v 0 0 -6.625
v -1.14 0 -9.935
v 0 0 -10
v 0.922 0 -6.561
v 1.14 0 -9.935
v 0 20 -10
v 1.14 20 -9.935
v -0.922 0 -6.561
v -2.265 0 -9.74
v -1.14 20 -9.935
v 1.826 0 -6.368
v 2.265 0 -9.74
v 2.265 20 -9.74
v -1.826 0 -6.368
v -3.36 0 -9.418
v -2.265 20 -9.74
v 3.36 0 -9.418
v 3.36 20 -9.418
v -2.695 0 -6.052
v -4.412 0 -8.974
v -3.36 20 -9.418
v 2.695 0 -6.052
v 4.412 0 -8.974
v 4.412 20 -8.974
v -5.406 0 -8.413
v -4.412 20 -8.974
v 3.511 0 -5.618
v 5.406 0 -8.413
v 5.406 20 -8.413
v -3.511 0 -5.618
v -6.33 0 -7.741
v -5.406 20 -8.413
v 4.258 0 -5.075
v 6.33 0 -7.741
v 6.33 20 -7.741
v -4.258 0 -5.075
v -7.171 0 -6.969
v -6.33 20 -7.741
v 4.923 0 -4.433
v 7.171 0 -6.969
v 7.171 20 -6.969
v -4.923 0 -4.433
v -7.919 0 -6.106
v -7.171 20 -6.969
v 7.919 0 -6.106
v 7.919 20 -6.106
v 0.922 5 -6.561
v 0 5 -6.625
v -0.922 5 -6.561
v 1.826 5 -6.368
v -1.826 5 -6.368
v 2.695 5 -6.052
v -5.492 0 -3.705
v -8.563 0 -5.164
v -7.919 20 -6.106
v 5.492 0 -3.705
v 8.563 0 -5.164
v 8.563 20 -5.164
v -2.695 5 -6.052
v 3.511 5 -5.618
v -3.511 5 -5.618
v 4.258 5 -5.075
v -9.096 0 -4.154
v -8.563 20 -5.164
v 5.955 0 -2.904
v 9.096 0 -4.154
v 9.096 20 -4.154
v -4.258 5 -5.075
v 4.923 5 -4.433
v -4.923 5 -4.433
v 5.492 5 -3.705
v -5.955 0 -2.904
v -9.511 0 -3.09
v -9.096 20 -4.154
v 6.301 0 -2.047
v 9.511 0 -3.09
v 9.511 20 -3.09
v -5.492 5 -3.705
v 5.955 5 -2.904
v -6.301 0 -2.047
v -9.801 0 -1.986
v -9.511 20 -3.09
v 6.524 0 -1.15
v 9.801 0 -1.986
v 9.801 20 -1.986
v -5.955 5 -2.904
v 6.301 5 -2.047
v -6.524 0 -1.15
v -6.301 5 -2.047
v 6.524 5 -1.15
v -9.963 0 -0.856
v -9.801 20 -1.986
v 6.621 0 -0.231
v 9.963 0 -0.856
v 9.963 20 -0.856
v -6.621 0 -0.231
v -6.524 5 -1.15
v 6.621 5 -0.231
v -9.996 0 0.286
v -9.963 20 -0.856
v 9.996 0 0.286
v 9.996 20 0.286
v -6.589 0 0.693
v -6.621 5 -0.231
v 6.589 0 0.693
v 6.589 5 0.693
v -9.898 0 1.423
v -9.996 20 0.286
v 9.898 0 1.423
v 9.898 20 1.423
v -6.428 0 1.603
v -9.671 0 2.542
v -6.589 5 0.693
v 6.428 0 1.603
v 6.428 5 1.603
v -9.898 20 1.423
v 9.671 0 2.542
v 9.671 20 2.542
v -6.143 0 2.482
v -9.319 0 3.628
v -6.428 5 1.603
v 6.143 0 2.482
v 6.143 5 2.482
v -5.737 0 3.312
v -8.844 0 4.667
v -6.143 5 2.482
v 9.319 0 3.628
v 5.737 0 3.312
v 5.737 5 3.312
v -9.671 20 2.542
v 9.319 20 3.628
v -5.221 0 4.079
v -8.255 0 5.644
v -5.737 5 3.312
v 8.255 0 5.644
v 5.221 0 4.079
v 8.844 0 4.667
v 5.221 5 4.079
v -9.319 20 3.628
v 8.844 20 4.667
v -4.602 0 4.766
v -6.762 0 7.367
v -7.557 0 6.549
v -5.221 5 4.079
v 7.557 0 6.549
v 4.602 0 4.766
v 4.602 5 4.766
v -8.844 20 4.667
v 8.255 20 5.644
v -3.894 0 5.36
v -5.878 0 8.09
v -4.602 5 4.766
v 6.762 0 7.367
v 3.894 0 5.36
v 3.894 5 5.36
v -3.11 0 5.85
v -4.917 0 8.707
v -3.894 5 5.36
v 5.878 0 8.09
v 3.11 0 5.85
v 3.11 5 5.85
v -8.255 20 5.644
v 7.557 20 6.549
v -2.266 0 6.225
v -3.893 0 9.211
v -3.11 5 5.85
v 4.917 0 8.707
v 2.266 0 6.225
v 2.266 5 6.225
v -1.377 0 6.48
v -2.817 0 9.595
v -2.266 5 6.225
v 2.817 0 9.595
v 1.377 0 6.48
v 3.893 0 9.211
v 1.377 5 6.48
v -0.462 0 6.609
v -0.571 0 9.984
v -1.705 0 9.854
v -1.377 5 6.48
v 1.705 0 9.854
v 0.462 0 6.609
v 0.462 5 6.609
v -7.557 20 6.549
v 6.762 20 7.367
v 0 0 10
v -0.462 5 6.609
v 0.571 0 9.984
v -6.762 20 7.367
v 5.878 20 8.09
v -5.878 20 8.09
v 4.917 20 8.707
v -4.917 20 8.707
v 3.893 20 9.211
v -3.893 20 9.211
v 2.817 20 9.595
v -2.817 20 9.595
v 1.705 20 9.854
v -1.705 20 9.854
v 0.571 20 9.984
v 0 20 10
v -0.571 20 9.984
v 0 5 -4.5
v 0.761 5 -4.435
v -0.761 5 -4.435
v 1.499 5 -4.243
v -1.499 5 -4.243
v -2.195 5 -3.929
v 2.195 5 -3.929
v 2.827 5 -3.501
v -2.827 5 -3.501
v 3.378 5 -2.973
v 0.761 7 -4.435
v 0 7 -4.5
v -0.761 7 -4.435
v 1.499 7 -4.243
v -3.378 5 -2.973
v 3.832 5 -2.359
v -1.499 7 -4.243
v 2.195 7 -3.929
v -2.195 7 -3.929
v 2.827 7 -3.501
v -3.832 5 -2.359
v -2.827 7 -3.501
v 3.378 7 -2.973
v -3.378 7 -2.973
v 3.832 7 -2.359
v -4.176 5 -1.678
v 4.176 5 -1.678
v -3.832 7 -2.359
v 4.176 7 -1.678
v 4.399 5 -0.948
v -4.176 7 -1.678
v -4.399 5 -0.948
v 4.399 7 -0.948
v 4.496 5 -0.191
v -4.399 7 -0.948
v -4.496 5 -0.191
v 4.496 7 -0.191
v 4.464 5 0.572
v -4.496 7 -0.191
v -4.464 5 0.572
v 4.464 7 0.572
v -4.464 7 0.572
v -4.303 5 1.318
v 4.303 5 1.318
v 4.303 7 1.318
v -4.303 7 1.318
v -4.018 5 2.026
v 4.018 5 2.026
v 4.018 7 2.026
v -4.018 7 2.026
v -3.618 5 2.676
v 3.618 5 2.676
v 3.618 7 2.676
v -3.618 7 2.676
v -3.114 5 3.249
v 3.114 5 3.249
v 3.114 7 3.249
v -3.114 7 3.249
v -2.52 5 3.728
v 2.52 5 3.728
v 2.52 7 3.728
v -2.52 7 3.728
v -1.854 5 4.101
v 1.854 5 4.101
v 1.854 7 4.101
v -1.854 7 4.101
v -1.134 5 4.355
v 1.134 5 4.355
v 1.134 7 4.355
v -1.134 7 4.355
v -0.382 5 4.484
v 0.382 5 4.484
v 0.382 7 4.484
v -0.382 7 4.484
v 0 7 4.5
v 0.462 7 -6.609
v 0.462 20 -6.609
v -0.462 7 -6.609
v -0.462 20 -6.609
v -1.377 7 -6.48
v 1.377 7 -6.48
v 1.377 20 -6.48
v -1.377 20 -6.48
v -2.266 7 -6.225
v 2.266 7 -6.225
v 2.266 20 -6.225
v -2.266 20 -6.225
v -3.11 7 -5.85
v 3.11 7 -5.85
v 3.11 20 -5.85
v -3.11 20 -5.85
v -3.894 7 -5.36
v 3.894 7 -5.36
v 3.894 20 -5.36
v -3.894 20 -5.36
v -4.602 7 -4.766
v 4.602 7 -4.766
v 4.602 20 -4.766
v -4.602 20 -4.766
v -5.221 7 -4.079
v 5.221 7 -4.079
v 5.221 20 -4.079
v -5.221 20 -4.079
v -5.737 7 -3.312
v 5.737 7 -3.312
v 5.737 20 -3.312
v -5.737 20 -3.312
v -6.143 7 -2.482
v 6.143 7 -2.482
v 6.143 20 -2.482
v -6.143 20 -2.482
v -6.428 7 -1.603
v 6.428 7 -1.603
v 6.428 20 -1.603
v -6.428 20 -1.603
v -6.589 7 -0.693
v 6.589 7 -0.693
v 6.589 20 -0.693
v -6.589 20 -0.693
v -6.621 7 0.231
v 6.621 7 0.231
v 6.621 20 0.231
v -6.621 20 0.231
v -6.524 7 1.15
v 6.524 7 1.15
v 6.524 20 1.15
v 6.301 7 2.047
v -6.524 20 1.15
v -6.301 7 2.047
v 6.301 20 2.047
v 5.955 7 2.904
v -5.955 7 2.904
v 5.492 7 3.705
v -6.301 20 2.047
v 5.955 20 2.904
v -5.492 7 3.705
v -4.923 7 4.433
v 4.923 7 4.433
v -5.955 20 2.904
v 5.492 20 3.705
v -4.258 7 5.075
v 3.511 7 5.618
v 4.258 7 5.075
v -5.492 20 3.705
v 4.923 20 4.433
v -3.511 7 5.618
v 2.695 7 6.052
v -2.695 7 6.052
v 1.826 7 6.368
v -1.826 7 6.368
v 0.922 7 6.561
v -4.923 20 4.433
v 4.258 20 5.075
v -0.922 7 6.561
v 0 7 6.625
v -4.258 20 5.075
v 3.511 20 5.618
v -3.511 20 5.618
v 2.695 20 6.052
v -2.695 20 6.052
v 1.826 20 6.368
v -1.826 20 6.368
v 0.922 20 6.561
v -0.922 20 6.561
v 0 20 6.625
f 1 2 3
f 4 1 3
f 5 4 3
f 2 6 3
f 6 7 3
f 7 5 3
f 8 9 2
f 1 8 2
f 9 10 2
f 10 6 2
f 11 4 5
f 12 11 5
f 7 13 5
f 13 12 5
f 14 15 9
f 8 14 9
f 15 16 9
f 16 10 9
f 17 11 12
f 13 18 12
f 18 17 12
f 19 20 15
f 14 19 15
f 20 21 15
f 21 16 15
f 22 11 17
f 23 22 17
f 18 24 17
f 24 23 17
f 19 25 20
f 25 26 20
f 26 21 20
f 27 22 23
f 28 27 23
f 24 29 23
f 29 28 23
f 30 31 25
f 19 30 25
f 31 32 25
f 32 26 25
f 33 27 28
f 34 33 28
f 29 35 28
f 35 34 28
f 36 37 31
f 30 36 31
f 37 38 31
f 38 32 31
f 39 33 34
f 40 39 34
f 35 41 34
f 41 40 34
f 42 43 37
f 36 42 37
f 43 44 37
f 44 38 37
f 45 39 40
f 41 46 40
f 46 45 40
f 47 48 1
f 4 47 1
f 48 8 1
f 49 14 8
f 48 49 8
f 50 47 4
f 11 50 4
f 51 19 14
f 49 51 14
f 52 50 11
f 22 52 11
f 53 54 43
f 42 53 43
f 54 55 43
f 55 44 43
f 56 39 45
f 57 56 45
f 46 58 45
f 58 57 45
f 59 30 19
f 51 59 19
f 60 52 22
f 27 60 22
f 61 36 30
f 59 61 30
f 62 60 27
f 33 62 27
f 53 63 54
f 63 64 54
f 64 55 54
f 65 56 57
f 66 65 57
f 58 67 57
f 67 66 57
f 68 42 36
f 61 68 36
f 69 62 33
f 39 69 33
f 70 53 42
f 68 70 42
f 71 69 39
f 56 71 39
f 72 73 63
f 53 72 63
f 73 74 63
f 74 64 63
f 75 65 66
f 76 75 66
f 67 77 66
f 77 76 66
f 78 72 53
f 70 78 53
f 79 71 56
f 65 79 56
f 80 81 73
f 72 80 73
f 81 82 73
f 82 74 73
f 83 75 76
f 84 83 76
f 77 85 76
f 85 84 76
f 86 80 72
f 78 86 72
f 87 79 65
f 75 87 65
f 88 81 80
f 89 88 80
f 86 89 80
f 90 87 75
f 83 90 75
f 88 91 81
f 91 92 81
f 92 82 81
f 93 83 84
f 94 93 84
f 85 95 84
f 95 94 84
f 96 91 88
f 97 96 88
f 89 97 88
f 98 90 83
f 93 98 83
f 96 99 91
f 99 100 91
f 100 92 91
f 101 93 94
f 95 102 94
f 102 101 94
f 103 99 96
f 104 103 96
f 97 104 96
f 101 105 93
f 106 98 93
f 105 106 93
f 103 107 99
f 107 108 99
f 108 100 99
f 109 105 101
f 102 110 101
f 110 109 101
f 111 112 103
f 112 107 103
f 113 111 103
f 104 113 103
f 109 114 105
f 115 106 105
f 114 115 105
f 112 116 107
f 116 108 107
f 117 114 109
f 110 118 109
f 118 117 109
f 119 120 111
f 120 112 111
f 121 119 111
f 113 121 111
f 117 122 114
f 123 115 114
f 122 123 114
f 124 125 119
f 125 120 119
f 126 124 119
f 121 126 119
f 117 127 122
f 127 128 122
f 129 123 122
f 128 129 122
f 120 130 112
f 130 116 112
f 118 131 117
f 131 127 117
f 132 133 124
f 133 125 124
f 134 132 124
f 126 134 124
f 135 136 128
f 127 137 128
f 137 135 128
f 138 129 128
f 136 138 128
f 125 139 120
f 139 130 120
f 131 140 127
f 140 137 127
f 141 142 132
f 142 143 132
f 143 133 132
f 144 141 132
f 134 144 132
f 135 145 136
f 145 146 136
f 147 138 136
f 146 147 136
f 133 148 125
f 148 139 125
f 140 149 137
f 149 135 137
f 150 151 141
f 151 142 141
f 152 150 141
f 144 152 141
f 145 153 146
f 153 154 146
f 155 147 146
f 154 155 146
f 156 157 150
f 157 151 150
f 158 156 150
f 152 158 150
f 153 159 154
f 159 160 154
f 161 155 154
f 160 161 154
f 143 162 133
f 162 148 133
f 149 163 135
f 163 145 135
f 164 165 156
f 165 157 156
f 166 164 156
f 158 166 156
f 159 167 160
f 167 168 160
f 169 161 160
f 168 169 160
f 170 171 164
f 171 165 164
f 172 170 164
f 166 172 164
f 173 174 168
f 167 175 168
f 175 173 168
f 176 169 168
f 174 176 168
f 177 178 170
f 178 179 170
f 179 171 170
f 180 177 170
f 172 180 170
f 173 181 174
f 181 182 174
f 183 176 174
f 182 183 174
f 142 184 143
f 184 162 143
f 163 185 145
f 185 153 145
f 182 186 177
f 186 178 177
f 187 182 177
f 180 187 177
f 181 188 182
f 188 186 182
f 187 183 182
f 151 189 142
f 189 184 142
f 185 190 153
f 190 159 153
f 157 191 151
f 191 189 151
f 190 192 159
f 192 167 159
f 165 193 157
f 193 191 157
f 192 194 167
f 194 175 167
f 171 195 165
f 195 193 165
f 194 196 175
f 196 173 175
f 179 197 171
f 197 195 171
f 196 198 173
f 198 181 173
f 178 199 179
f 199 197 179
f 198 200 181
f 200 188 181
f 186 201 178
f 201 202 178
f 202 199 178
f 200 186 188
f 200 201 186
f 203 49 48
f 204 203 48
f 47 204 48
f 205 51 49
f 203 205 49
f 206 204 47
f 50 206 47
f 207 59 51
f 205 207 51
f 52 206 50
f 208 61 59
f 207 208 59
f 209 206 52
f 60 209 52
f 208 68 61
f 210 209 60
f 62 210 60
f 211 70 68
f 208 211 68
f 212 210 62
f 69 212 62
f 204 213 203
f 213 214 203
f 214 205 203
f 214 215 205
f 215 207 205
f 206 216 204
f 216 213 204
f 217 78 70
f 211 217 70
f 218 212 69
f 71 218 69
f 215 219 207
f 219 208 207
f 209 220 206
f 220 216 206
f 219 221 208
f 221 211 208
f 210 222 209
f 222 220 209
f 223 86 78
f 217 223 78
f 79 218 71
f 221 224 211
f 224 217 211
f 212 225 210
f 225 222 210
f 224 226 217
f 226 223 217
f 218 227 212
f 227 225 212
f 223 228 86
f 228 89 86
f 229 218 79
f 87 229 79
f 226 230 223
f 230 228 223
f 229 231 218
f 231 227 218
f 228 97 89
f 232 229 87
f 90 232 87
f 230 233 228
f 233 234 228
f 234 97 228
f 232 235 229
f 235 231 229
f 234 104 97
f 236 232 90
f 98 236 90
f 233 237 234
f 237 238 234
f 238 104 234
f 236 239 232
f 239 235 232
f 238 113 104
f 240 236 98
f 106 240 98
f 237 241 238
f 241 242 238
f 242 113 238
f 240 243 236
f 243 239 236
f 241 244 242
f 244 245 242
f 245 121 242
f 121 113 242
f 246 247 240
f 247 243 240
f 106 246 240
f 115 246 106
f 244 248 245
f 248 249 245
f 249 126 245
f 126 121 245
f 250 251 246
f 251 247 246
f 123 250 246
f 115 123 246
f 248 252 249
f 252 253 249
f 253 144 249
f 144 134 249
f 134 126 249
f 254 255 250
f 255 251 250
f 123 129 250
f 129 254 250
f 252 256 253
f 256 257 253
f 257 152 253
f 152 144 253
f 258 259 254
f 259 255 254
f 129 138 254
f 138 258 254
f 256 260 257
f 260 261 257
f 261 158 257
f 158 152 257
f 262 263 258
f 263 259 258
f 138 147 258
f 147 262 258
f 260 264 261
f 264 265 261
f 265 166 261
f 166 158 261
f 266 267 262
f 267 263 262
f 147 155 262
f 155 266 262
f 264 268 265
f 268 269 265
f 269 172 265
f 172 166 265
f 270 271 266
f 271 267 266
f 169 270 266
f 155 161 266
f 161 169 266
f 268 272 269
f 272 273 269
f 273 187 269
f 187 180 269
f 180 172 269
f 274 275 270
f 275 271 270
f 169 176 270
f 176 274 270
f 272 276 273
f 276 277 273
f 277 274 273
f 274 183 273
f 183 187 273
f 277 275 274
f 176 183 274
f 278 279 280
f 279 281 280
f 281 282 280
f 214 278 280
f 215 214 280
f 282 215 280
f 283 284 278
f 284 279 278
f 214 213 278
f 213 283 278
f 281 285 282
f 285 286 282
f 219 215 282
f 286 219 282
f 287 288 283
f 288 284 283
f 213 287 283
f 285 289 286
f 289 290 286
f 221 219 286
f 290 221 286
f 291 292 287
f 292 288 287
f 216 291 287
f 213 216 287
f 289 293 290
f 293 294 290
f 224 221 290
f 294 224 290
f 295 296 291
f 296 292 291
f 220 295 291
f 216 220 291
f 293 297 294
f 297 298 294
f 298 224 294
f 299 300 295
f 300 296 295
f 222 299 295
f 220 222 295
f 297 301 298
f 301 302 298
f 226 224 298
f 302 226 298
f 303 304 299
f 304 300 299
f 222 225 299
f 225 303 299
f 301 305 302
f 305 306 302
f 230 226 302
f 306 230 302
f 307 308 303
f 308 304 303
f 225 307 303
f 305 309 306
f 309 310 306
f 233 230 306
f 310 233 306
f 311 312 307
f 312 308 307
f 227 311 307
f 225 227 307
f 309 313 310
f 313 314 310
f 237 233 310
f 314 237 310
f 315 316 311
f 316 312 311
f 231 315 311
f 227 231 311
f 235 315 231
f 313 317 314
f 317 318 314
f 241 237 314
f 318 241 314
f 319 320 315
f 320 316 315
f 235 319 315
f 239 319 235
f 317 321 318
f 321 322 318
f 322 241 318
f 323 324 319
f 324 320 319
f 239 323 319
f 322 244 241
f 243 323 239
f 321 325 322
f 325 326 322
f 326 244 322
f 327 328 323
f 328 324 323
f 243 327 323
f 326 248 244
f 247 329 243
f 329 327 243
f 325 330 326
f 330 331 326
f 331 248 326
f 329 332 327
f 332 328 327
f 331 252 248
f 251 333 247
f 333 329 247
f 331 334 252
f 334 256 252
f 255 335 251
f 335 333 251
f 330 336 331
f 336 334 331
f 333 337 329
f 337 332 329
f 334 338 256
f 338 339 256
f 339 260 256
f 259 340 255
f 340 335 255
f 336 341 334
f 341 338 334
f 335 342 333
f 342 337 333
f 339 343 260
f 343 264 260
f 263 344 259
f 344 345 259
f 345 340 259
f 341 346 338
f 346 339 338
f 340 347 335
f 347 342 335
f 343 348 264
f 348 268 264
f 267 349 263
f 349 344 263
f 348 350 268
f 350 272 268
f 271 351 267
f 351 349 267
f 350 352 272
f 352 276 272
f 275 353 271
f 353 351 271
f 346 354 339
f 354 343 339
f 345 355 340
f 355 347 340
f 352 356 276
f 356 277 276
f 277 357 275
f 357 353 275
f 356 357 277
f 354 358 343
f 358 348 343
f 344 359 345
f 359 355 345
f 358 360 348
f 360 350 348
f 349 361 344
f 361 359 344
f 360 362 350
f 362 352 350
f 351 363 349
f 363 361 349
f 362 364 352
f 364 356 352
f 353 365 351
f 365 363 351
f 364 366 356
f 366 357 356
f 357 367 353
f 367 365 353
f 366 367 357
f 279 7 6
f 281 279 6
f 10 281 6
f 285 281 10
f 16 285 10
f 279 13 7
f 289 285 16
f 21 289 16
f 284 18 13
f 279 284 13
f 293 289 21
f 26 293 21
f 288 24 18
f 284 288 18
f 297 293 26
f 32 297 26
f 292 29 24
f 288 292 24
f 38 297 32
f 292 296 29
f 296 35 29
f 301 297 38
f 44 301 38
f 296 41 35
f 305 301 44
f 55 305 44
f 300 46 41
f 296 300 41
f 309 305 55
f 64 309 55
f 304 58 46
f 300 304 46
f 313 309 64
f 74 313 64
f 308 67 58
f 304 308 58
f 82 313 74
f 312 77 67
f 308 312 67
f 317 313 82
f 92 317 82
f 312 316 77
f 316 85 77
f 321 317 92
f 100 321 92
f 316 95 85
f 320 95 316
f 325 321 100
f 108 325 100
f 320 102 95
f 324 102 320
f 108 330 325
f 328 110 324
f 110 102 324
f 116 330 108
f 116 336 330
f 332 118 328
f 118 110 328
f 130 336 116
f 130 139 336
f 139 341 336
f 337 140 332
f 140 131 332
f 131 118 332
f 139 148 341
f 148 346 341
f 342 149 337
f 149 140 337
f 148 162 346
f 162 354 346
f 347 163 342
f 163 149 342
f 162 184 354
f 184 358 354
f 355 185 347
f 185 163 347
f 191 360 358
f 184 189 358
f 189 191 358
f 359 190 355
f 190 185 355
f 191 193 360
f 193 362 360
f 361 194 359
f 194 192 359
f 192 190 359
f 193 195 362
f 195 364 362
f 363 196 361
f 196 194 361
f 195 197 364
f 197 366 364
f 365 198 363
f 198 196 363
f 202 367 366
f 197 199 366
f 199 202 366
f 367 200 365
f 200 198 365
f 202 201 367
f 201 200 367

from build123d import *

# Parameters (mm, degrees)
SKETCH1_R           = 10
SKETCH1_R_2         = 4.5
BOSS_EXTRUDE1_DEPTH = 20
SKETCH2_R           = 6.625
CUT_EXTRUDE1_DEPTH  = 13
SKETCH3_R           = 6.625
CUT_EXTRUDE2_DEPTH  = 5


with BuildPart() as part:
    # Sketch1 → Boss-Extrude1 (new body)
    with BuildSketch(Plane(origin=(0, 0, 0), x_dir=(1, 0, 0), z_dir=(0, 1, 0))):
        Circle(SKETCH1_R)
        Circle(SKETCH1_R_2, mode=Mode.SUBTRACT)
    extrude(amount=BOSS_EXTRUDE1_DEPTH)

    # Sketch2 → Cut-Extrude1 (cut)
    with BuildSketch(Plane(origin=(0, 20, 0), x_dir=(1, 0, 0), z_dir=(0, 1, 0))):
        Circle(SKETCH2_R)
    extrude(amount=-CUT_EXTRUDE1_DEPTH, mode=Mode.SUBTRACT)

    # Sketch3 → Cut-Extrude2 (cut)
    with BuildSketch(Plane.XZ):
        Circle(SKETCH3_R)
    extrude(amount=-CUT_EXTRUDE2_DEPTH, mode=Mode.SUBTRACT)


solid = part.part
